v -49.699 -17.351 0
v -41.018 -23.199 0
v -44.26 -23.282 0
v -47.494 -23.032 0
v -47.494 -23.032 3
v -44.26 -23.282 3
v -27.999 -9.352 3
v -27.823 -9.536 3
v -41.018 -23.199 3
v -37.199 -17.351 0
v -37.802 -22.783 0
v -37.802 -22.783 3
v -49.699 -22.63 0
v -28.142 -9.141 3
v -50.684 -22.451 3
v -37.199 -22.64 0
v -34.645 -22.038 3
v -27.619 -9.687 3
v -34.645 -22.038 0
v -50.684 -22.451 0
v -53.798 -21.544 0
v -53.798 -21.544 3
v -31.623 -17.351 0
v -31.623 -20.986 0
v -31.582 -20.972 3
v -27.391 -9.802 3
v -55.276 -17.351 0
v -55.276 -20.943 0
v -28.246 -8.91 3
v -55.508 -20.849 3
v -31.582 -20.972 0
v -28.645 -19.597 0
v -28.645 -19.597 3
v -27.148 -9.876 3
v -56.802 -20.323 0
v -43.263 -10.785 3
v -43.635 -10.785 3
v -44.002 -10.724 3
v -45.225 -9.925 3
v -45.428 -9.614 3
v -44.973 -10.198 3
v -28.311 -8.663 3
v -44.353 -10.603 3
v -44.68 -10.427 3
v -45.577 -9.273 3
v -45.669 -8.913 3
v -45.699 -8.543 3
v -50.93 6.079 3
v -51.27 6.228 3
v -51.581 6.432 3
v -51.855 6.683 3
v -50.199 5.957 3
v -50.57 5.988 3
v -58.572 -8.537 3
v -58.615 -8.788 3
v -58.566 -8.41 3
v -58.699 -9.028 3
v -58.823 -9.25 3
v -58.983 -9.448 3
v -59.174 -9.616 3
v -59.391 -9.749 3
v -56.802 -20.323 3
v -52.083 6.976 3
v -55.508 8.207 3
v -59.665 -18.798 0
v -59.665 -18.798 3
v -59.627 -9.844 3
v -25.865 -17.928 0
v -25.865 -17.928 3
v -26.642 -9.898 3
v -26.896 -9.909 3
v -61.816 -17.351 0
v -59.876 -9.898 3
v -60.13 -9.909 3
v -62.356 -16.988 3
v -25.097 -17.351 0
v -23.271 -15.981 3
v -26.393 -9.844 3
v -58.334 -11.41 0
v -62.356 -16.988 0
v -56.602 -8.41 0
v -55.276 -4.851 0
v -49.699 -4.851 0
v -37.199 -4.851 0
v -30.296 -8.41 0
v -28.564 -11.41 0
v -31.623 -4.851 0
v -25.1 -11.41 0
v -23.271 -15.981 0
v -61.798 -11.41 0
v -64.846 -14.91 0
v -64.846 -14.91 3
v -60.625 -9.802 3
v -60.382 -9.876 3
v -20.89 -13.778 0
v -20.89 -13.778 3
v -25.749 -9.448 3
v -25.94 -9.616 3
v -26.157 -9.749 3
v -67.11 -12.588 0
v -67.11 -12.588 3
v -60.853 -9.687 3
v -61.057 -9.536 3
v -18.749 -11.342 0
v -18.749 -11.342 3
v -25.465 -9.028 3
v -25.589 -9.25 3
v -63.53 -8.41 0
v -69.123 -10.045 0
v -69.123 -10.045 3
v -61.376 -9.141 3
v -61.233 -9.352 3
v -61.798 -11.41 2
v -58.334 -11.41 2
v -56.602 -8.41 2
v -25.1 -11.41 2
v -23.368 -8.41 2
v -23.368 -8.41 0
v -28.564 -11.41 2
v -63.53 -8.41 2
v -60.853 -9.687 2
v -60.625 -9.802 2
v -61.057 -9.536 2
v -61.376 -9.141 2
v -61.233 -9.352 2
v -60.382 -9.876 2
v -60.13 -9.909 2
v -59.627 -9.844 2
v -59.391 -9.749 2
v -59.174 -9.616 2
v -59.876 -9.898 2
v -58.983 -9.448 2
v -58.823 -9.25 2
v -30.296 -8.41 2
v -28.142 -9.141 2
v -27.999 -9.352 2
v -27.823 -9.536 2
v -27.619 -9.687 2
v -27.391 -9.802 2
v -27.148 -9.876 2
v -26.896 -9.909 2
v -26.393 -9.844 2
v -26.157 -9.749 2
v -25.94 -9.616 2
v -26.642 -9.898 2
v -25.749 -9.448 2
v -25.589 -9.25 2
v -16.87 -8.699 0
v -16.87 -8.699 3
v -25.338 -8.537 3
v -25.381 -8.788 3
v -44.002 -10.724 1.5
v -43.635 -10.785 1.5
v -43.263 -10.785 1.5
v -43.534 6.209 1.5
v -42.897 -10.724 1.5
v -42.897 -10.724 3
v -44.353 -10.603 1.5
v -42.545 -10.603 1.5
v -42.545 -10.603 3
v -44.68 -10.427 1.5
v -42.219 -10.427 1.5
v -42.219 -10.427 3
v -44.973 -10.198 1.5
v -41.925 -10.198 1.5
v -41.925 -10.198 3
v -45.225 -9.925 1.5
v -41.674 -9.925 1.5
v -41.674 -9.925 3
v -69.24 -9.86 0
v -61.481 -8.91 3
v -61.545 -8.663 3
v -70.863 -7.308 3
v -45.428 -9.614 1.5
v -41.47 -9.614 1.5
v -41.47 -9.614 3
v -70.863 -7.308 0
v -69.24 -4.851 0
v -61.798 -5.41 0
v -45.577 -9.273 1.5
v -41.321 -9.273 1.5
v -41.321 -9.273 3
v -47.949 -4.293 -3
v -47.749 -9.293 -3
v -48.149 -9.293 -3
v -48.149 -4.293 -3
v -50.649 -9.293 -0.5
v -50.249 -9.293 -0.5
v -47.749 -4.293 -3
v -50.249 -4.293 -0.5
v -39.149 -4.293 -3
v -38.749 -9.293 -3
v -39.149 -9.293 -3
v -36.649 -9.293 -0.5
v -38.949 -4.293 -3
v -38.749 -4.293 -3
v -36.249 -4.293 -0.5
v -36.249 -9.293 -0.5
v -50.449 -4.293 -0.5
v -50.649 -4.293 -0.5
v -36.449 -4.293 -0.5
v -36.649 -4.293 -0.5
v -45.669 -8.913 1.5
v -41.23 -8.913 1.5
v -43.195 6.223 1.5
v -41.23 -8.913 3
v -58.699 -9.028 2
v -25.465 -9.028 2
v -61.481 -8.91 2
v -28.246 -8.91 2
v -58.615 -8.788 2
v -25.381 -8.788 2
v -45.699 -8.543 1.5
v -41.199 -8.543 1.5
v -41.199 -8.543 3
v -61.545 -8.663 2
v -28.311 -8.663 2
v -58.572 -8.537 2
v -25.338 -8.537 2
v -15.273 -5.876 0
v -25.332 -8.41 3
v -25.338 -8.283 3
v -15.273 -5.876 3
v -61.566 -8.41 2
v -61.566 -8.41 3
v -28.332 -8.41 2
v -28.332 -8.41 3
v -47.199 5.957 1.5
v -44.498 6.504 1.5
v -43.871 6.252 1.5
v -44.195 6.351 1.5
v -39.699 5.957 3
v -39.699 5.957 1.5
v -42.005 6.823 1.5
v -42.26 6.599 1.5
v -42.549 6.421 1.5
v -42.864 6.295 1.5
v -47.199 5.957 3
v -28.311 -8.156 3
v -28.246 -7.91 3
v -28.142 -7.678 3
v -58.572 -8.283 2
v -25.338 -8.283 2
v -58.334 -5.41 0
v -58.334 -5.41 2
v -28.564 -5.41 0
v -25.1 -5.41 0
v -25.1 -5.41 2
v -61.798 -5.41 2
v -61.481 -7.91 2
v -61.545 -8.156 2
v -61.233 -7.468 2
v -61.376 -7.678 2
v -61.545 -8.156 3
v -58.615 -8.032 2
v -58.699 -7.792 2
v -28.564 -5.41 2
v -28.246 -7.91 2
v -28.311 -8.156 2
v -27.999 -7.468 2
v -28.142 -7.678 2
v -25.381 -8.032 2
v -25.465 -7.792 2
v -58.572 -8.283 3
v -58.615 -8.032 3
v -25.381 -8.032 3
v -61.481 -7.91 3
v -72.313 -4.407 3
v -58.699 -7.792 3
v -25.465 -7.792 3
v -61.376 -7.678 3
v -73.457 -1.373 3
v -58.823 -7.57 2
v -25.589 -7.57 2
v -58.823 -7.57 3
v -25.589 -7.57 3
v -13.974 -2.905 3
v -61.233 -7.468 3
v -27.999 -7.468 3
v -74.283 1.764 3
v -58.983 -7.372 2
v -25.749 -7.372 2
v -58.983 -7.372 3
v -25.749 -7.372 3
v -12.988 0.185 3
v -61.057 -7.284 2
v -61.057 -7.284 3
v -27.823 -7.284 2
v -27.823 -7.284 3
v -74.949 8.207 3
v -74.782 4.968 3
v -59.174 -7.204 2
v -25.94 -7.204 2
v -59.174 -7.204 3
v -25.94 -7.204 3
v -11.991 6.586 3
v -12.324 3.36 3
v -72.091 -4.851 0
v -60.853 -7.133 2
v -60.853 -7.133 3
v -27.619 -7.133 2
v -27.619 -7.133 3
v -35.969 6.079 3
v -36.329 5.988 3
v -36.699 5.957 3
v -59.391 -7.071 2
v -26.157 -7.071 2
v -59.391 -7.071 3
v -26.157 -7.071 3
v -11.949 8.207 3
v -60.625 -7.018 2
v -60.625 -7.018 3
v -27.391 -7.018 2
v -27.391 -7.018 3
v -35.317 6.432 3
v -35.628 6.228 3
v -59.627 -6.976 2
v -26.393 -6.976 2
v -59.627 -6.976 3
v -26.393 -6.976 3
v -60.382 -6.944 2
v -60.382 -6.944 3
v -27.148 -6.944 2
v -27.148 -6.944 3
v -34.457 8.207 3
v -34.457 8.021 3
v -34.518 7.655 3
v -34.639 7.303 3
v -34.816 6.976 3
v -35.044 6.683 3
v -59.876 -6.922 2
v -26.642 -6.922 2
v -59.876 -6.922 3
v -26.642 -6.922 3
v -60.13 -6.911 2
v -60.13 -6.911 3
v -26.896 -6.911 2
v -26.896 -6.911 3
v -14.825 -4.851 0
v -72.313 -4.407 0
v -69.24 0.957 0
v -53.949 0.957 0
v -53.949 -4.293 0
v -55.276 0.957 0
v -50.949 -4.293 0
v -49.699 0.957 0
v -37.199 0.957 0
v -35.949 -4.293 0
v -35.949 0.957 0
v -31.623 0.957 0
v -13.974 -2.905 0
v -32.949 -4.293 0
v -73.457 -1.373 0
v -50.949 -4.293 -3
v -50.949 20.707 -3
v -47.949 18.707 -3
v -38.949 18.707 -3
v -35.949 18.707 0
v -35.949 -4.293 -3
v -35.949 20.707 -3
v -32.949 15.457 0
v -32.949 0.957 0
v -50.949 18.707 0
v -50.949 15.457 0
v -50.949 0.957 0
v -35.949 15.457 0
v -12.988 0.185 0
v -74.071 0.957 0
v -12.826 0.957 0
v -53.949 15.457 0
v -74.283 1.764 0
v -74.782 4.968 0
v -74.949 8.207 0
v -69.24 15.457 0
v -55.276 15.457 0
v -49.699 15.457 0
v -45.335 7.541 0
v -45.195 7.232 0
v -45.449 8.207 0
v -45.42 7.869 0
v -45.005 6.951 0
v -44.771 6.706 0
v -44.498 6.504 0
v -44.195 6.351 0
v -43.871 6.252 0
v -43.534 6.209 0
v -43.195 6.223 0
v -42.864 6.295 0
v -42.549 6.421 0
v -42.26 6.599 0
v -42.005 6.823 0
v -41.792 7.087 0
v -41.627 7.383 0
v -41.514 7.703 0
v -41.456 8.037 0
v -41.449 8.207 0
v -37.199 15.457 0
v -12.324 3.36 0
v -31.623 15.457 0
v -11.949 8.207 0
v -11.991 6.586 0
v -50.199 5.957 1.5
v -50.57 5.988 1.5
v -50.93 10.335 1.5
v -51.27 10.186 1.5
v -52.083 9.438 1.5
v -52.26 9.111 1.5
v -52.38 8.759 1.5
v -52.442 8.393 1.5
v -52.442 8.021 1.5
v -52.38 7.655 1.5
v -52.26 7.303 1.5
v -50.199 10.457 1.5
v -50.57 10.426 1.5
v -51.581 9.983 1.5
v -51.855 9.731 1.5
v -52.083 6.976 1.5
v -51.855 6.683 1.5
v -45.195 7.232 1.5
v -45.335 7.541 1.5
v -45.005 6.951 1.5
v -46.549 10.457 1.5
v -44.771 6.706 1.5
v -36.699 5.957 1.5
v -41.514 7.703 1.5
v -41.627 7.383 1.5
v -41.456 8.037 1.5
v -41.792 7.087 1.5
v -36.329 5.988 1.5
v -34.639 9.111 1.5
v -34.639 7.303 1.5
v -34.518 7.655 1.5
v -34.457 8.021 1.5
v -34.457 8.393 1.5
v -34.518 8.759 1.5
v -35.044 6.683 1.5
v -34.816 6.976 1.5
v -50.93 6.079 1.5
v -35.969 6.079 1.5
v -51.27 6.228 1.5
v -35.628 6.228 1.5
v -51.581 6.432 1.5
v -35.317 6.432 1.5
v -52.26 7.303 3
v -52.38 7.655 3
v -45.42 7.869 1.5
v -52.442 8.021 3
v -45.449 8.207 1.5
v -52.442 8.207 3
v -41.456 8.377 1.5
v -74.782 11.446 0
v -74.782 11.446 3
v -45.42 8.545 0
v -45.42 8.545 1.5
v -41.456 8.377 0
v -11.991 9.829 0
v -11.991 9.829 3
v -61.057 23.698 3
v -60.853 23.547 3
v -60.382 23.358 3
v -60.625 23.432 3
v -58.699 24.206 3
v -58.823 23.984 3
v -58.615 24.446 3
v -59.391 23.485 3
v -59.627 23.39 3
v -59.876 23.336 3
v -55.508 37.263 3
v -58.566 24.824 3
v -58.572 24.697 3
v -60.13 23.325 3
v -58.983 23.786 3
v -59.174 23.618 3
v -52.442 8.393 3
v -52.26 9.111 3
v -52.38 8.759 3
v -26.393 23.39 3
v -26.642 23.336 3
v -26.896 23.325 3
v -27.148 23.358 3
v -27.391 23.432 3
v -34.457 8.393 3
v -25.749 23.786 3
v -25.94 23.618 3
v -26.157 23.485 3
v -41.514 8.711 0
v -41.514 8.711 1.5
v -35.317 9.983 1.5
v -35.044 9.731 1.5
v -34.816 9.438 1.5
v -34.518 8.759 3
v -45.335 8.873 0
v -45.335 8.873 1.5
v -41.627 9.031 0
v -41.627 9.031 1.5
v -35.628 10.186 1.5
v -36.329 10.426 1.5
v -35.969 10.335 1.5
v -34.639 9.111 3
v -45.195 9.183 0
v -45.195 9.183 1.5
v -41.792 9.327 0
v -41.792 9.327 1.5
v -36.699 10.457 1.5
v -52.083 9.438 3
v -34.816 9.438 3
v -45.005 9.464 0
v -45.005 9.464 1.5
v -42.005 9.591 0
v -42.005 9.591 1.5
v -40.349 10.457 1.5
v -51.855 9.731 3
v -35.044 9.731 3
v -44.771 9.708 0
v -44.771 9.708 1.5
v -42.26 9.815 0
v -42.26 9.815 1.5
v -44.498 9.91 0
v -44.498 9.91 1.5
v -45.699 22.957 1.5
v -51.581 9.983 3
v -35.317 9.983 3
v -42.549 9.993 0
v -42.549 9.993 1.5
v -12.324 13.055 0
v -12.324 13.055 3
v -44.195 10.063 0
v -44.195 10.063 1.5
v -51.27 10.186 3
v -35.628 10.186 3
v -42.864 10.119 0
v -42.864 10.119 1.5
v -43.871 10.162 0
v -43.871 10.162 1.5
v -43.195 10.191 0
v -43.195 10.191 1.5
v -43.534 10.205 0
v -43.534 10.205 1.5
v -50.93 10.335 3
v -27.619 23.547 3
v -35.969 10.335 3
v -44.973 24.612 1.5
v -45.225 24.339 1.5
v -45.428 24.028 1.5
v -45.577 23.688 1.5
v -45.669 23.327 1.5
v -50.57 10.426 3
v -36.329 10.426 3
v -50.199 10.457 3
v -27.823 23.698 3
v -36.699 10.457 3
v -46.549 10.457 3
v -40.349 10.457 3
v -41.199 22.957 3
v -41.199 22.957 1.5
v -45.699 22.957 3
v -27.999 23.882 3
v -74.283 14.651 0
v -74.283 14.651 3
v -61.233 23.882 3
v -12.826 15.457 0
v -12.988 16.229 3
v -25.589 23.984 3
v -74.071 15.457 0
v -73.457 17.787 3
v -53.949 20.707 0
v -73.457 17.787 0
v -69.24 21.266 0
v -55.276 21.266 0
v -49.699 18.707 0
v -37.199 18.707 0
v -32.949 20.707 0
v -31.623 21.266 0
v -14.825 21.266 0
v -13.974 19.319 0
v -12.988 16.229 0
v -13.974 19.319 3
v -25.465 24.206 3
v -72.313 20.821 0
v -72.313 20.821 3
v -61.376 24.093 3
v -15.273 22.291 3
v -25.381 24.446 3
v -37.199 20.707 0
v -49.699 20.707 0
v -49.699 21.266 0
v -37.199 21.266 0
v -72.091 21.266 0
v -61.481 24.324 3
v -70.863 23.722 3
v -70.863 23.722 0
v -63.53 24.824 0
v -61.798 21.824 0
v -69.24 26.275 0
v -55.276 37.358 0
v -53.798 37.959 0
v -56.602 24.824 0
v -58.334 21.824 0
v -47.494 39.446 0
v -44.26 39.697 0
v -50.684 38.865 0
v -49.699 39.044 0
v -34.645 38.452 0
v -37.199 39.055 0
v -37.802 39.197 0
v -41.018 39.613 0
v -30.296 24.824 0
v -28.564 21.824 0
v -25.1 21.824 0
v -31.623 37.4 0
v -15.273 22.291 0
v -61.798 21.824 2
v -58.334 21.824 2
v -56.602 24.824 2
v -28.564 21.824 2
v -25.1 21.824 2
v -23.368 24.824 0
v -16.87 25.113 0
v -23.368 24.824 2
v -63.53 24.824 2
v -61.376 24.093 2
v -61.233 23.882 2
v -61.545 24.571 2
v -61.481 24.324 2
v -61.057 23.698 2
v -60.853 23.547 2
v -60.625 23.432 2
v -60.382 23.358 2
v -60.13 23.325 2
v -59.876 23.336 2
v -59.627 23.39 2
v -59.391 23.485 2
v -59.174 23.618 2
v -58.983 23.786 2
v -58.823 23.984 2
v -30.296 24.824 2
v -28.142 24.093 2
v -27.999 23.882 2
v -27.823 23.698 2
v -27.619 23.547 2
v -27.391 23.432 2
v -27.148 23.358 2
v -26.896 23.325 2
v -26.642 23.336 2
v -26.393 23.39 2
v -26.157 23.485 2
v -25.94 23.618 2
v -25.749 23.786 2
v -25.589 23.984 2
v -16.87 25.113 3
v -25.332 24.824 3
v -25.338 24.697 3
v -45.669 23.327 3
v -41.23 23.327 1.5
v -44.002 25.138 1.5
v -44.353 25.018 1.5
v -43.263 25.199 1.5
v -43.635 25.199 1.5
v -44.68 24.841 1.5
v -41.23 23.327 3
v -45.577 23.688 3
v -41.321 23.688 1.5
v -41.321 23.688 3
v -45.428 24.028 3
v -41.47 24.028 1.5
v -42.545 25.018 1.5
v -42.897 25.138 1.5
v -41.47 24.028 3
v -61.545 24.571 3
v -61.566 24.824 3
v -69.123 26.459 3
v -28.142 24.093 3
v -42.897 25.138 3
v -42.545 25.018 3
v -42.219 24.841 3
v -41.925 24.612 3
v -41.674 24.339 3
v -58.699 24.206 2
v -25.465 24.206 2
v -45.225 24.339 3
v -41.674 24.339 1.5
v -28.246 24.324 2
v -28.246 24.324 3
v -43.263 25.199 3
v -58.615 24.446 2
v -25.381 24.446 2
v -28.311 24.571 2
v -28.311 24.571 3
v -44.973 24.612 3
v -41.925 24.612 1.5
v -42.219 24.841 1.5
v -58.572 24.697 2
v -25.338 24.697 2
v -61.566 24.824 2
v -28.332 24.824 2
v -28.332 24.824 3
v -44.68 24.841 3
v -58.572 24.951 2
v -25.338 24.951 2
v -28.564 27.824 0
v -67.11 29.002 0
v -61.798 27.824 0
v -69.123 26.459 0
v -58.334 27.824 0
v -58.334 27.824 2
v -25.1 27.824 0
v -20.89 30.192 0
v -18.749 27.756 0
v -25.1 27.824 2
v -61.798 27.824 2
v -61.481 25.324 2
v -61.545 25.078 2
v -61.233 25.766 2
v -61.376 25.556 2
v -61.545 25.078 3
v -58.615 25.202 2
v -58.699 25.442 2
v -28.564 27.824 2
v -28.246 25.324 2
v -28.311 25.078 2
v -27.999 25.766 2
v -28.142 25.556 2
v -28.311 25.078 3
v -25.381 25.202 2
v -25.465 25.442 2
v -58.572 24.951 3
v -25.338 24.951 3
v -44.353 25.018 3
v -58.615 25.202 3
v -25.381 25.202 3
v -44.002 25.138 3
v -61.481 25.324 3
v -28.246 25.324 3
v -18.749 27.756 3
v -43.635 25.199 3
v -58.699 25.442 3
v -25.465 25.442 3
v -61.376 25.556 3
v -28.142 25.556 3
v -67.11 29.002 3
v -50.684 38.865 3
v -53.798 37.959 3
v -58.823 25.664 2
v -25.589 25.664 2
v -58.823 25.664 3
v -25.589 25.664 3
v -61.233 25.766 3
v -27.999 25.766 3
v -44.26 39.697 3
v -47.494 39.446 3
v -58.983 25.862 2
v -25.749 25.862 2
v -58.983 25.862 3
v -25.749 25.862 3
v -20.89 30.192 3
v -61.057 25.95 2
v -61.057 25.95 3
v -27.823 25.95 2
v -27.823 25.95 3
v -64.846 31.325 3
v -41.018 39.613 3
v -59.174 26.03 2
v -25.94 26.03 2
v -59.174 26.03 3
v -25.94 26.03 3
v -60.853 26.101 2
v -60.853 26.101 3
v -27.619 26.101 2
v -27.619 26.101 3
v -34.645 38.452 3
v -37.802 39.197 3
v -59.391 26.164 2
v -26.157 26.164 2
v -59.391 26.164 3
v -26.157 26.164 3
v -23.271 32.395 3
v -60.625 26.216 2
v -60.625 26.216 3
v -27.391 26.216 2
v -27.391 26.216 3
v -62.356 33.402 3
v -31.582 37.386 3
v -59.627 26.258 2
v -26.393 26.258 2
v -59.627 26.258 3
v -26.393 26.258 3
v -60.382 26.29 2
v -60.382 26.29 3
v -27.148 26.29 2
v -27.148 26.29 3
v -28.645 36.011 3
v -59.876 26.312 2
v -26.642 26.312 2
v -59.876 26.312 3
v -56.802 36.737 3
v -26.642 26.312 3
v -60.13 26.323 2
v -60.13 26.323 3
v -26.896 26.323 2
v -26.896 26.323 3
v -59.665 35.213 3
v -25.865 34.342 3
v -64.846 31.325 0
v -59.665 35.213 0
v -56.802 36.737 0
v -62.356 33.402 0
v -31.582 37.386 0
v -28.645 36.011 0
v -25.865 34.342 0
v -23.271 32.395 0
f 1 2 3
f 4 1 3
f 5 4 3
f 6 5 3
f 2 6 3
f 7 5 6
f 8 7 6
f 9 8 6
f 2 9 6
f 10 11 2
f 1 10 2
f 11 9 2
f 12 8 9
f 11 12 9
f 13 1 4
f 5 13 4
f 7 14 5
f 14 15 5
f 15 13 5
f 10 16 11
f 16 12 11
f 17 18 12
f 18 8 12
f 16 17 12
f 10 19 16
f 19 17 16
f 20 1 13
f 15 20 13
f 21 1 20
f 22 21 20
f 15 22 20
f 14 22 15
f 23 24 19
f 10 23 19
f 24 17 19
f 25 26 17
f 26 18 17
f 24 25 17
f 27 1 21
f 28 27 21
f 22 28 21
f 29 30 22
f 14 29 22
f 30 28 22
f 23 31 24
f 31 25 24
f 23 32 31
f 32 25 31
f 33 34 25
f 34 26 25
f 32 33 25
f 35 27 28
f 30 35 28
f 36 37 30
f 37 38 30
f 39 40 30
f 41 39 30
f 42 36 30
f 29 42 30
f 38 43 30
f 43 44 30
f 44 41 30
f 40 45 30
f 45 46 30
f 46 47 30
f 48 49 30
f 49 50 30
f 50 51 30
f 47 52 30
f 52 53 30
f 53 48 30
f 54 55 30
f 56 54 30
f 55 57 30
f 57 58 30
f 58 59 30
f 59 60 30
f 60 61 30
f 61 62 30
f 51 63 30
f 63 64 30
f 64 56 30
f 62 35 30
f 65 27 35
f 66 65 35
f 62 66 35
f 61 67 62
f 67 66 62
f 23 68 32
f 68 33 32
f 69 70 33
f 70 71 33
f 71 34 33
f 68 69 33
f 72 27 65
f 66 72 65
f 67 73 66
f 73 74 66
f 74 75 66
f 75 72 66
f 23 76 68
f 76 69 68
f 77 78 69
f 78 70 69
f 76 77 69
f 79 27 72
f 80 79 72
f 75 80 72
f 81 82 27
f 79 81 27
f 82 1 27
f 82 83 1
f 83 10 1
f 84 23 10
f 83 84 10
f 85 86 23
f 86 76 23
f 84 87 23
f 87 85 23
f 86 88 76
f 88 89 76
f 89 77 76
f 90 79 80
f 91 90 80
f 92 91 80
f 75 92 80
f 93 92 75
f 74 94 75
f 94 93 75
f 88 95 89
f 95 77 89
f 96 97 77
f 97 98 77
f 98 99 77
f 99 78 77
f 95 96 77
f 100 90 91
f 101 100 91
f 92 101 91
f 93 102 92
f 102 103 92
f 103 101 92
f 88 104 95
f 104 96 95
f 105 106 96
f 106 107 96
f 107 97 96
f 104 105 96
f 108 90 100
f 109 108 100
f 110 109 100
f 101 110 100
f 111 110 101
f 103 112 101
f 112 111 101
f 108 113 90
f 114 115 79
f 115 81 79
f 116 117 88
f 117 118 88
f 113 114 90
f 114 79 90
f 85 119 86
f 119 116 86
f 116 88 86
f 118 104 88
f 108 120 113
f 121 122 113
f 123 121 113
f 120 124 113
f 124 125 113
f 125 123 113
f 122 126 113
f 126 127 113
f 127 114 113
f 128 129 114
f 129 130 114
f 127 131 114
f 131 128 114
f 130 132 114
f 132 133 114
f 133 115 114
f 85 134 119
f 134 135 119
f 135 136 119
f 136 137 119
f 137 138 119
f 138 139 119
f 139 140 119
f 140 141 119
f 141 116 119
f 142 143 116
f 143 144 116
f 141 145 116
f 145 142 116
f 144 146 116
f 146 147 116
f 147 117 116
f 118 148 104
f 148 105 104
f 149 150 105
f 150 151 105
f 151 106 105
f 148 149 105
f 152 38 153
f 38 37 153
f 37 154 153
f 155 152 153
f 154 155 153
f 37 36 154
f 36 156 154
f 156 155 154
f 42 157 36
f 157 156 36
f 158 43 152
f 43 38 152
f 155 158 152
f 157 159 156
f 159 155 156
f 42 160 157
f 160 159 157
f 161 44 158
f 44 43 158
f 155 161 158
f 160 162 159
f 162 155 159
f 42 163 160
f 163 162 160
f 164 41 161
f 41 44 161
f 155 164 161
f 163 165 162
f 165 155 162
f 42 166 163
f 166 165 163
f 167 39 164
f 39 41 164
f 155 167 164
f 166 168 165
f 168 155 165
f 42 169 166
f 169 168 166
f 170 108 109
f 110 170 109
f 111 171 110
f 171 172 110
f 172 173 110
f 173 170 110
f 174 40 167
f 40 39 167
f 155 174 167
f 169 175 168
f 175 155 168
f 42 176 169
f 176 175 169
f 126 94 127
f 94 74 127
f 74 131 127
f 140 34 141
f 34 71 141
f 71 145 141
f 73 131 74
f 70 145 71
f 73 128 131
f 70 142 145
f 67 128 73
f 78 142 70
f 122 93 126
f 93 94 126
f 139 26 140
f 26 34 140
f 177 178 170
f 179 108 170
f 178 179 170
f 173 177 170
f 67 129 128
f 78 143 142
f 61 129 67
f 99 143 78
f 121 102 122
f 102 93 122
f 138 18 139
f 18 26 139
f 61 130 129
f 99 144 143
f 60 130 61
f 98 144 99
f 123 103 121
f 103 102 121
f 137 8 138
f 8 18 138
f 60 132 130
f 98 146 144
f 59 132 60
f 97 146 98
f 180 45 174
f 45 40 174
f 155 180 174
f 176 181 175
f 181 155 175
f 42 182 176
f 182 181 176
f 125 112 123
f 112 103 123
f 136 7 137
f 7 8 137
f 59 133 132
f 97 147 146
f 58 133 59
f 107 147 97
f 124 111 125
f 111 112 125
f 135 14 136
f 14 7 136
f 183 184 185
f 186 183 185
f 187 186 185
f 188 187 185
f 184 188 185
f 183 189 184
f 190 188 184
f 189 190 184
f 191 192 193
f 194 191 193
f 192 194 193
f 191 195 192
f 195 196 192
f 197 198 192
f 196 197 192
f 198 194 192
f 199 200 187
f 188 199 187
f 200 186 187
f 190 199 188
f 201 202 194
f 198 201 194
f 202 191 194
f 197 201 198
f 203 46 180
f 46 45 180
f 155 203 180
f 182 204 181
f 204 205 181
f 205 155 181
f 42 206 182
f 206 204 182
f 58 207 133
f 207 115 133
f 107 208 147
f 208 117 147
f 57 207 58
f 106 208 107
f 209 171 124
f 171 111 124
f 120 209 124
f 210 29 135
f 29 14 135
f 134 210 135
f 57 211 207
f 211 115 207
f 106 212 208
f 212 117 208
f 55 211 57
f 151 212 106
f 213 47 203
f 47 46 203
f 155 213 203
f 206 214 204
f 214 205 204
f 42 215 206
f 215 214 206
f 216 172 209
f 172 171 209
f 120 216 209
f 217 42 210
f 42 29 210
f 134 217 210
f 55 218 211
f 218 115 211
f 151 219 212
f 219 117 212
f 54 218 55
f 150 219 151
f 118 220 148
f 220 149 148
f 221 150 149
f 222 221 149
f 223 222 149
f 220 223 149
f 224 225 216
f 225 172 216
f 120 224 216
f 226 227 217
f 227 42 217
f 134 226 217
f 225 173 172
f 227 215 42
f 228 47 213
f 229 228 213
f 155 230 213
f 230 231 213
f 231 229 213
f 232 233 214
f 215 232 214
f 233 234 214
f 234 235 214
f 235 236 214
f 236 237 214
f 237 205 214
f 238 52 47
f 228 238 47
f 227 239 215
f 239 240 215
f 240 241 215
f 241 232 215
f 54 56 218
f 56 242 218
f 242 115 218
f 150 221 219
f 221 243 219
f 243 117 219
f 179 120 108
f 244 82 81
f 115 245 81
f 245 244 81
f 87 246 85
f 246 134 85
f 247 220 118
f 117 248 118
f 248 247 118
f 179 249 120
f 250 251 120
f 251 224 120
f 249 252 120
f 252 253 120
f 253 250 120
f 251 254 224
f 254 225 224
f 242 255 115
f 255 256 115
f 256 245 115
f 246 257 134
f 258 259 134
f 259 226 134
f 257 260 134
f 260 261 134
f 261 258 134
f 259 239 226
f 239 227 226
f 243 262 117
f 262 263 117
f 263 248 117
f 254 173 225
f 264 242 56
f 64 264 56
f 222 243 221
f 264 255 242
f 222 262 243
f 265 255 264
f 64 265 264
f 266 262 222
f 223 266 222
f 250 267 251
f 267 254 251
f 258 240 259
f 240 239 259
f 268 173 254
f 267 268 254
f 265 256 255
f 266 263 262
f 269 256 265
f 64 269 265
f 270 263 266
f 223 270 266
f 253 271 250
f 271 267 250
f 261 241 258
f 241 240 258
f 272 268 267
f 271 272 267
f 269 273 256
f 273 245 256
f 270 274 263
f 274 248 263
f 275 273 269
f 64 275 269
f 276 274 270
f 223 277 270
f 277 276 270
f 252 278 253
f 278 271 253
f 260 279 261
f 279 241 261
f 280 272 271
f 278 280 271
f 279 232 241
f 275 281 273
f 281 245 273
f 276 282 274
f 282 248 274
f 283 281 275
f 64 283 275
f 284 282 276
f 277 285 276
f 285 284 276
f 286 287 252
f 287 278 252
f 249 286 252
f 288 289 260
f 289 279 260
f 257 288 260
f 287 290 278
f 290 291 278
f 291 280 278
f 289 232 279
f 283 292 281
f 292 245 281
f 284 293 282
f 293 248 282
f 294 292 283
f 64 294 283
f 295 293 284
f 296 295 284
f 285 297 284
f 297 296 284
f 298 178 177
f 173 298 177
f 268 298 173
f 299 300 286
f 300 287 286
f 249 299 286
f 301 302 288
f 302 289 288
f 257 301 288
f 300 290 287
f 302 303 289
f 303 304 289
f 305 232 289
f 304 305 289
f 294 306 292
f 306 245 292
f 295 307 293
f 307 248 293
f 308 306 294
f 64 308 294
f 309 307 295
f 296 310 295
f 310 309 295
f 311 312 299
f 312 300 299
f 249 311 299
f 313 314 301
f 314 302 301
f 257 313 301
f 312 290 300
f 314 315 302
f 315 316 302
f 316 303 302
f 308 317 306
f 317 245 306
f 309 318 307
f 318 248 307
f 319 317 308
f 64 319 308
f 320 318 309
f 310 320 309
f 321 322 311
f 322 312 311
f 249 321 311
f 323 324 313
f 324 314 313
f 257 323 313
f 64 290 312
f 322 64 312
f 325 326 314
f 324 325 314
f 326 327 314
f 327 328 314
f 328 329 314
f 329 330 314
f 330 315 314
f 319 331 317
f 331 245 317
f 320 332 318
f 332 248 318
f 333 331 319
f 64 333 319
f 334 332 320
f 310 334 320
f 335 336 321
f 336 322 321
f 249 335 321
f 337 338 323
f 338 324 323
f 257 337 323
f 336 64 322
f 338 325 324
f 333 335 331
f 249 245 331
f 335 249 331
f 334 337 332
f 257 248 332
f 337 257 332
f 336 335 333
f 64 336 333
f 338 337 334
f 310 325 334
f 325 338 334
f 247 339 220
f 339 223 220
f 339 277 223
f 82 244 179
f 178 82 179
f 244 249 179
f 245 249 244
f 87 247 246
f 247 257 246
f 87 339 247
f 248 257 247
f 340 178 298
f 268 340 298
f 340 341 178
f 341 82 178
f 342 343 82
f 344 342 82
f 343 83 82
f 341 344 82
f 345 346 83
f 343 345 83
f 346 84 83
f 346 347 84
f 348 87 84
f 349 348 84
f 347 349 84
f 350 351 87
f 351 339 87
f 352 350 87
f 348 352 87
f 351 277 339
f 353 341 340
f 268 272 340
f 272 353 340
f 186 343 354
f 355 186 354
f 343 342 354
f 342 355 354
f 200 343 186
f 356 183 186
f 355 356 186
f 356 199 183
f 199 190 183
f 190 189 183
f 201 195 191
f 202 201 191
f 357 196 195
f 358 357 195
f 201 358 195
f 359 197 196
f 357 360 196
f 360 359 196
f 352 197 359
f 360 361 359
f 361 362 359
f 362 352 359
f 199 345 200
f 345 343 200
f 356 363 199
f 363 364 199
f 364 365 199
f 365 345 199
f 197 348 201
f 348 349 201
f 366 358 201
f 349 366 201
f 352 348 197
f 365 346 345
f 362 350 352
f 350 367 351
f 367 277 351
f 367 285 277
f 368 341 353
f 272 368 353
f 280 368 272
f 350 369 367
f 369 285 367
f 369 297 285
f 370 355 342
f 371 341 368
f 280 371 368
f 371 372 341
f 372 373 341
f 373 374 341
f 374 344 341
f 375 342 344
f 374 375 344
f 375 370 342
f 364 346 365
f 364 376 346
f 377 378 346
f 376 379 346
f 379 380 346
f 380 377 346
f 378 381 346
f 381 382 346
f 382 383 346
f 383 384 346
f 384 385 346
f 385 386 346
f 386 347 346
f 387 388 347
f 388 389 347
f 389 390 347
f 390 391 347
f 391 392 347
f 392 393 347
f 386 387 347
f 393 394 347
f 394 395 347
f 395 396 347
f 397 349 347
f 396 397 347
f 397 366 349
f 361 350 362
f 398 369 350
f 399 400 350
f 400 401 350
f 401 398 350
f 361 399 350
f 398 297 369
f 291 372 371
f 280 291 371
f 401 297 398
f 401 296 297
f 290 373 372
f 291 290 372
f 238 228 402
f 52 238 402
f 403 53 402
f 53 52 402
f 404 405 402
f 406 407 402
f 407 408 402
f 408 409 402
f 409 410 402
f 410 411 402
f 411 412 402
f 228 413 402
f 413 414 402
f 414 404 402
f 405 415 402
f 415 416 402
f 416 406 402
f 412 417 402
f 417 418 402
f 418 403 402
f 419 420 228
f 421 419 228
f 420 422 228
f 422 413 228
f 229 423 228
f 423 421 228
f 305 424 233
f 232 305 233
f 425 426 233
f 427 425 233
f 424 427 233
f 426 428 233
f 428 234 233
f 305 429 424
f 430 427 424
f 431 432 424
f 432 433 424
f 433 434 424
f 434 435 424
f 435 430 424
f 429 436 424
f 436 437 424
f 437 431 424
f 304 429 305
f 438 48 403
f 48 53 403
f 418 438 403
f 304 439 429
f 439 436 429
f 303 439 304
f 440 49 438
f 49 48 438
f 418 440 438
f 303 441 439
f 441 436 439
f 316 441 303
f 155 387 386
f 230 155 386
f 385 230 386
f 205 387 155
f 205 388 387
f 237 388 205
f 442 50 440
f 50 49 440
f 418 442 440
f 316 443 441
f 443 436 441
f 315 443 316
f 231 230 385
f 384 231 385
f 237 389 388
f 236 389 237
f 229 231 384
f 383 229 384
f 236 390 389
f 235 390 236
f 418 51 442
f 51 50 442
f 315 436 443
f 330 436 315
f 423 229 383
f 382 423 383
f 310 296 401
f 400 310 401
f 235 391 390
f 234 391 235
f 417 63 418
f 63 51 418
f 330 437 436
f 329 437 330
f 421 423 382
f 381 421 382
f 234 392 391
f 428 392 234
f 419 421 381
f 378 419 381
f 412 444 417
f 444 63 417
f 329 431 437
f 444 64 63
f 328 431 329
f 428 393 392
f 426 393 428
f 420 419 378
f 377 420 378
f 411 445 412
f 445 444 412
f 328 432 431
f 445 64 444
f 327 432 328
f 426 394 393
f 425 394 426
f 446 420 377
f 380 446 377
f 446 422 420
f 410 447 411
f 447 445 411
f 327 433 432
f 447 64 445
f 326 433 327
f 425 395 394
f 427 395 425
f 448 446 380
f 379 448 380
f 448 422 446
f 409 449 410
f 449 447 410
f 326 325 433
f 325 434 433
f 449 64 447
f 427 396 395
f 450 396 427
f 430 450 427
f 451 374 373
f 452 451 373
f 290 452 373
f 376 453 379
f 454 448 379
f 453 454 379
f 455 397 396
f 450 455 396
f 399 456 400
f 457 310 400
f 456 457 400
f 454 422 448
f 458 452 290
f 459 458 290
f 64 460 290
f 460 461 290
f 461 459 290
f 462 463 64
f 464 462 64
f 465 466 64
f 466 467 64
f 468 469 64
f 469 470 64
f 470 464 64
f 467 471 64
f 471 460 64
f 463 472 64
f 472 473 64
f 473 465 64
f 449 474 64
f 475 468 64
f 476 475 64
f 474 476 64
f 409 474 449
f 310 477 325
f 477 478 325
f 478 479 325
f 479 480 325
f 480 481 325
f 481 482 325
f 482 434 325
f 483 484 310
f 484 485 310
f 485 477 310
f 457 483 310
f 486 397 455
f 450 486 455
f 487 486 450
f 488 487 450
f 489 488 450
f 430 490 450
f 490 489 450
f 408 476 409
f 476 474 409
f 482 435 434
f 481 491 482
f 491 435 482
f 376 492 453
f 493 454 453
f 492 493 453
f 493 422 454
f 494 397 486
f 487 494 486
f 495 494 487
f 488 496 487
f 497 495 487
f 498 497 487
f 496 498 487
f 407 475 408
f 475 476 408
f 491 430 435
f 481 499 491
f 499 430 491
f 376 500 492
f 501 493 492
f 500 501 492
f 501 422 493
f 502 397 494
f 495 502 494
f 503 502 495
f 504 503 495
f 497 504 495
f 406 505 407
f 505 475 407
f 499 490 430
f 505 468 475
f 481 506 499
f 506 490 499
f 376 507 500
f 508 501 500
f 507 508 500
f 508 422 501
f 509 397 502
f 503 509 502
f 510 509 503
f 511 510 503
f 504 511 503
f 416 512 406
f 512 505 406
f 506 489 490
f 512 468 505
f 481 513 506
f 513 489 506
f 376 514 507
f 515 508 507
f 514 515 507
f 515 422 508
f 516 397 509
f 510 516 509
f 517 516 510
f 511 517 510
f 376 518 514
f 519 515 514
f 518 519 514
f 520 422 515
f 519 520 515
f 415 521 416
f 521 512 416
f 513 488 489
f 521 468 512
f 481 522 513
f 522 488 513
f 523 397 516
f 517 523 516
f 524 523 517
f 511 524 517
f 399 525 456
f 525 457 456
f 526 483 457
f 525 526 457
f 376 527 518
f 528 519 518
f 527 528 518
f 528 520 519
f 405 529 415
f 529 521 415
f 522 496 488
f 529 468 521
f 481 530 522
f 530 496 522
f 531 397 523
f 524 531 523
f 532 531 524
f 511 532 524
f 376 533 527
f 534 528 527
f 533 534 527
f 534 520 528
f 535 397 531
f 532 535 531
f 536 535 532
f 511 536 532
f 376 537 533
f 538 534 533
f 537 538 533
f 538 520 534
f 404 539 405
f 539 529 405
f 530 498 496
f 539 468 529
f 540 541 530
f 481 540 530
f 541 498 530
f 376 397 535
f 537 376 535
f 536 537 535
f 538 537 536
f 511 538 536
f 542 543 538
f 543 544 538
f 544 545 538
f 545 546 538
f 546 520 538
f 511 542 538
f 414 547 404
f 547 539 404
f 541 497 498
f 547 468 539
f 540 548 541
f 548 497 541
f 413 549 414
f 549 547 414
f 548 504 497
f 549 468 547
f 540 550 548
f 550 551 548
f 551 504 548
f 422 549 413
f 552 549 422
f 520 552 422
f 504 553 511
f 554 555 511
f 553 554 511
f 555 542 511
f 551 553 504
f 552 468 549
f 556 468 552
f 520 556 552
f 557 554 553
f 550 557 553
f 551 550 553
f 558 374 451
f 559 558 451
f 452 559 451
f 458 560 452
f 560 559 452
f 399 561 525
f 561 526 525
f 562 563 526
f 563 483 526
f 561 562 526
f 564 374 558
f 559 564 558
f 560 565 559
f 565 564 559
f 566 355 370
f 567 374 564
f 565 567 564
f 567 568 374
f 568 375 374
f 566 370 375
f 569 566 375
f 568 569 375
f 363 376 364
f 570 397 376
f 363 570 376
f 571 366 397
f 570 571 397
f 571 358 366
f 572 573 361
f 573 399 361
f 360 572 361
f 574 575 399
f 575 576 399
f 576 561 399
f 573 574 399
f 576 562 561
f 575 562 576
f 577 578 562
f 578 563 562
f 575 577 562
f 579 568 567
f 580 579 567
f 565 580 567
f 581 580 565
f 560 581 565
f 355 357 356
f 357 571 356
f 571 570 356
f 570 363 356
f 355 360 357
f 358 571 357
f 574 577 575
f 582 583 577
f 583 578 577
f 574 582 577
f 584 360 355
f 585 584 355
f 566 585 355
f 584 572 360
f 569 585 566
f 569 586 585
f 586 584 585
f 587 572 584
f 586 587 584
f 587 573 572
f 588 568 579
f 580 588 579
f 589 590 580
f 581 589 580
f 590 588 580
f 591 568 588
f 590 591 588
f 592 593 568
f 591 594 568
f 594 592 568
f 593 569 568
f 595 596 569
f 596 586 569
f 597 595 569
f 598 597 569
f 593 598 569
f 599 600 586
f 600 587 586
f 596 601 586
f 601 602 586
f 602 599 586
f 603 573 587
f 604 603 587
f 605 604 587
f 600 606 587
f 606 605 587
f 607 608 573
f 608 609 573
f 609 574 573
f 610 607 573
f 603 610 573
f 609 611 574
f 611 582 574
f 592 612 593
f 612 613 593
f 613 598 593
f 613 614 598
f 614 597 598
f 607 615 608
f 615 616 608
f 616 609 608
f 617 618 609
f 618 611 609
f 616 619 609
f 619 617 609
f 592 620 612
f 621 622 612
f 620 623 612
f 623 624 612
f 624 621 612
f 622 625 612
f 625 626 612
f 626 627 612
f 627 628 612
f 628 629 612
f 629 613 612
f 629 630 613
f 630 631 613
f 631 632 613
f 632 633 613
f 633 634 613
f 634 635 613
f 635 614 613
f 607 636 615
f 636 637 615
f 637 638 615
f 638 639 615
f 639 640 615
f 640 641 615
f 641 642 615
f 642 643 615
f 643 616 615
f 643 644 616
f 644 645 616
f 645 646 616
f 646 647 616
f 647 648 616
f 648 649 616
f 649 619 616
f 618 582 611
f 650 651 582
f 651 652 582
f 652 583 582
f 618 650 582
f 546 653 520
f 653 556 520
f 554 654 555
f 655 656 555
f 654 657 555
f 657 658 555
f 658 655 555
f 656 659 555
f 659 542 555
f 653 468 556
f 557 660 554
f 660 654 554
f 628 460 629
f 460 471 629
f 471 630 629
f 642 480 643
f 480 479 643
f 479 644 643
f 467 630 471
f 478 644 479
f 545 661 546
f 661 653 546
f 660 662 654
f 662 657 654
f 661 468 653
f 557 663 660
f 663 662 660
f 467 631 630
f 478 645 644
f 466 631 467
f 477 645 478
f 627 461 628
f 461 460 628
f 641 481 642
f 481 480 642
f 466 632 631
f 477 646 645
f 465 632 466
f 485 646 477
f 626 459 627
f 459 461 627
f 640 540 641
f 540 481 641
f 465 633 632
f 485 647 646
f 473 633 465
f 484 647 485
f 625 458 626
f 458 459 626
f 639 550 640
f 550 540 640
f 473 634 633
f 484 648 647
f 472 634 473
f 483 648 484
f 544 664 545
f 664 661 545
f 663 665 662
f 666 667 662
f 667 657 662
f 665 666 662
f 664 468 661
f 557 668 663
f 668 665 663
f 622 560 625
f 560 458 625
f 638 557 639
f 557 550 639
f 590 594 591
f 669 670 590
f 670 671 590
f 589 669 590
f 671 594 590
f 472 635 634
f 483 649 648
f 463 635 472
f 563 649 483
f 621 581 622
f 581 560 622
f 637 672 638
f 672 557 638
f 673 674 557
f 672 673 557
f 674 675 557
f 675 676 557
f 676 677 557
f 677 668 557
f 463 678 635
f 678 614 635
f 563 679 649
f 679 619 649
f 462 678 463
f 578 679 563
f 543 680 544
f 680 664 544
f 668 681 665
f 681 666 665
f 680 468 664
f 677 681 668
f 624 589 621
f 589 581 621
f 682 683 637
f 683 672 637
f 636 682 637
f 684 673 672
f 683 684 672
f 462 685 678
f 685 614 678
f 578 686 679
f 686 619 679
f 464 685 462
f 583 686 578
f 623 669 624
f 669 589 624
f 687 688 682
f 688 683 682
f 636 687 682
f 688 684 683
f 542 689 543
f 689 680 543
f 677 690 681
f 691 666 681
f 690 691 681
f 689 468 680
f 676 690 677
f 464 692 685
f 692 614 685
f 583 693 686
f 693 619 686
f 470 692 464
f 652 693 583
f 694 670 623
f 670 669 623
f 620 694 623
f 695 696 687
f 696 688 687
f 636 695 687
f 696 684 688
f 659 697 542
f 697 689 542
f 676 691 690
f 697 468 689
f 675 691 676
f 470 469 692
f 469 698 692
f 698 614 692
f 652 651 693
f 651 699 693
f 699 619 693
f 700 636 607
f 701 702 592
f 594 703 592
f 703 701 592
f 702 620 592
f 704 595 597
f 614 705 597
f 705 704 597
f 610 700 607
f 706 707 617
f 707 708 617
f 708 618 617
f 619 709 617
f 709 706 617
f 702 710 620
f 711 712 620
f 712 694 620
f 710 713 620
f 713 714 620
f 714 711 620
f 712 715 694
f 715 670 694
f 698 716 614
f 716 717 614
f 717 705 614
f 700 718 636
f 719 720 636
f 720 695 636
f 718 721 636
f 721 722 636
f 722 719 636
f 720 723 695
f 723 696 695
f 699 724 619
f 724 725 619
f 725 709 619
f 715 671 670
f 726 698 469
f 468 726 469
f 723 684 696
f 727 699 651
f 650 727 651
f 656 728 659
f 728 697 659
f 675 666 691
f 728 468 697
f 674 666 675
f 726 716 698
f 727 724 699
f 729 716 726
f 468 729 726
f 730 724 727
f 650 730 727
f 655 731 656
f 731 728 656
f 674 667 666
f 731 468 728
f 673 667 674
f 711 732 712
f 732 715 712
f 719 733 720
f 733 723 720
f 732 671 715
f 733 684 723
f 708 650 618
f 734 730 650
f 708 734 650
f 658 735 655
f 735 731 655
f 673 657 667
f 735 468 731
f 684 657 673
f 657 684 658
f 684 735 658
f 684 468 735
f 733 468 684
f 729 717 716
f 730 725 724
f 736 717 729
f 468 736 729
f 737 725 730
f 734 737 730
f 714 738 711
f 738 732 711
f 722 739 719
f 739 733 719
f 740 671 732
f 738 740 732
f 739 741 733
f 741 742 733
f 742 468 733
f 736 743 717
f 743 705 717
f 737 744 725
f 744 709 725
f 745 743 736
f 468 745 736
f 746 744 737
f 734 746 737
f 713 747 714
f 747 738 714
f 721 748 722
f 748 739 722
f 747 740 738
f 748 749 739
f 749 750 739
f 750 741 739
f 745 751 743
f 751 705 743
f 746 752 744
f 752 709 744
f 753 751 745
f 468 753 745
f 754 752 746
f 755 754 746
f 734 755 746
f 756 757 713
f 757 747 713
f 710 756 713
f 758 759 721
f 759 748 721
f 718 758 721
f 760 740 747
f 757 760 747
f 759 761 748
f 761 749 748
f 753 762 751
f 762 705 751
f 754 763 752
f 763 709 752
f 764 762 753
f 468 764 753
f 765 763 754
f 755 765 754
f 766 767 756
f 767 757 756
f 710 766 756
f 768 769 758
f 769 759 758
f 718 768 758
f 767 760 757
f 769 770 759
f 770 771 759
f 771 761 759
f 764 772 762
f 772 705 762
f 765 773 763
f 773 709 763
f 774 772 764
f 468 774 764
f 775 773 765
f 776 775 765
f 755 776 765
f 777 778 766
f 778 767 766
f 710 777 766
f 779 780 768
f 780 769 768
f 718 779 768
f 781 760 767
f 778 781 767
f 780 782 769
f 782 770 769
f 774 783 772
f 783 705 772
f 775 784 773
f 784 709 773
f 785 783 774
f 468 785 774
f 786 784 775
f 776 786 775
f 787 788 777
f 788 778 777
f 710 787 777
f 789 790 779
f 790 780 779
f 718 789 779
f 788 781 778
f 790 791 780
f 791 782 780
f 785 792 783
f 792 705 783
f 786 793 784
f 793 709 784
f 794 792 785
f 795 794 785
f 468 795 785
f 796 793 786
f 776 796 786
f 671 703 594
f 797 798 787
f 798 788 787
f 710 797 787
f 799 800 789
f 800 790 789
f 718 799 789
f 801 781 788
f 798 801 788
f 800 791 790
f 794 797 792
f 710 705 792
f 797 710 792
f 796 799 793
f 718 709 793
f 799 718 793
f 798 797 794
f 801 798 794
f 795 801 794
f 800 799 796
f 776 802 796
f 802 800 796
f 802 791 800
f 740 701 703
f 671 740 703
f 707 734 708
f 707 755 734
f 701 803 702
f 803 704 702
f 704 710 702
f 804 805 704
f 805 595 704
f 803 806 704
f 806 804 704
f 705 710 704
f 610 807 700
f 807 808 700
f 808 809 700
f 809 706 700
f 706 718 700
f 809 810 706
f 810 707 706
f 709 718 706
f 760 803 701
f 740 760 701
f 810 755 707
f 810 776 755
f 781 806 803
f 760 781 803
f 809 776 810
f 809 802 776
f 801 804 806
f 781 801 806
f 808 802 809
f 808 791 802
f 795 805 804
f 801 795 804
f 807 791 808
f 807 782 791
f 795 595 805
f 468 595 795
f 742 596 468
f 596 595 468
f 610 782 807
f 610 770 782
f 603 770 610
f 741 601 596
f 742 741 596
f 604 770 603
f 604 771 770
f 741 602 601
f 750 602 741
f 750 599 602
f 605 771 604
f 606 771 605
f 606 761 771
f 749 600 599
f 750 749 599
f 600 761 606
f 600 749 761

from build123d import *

# Parameters (mm, degrees)
CROQUIS1_R              = 31.5
CROQUIS1_R_2            = 1.5
CROQUIS1_R_3            = 2
SALIENTE_EXTRUIR1_DEPTH = 3
CORTAR_EXTRUIR2_DEPTH   = 1.5
CROQUIS4_W              = 15
CROQUIS4_H              = 25
SALIENTE_EXTRUIR2_DEPTH = 3
SALIENTE_EXTRUIR3_DEPTH = 25
CORTAR_EXTRUIR3_DEPTH   = 23
SALIENTE_EXTRUIR4_DEPTH = 5
CORTAR_EXTRUIR4_DEPTH   = 2


with BuildPart() as part:
    # Croquis1 → Saliente-Extruir1 (new body)
    with BuildSketch(Plane.XY):
        with Locations((-43.449193048, 8.207110309)):
            Circle(CROQUIS1_R)
        with Locations((-60.066202406, 24.824119667)):
            Circle(CROQUIS1_R_2, mode=Mode.SUBTRACT)
        with Locations((-26.83218369, 24.824119667)):
            Circle(CROQUIS1_R_2, mode=Mode.SUBTRACT)
        with Locations((-26.83218369, -8.409899049)):
            Circle(CROQUIS1_R_2, mode=Mode.SUBTRACT)
        with Locations((-60.066202406, -8.409899049)):
            Circle(CROQUIS1_R_2, mode=Mode.SUBTRACT)
        with Locations((-43.449193048, 8.207110309)):
            Circle(CROQUIS1_R_3, mode=Mode.SUBTRACT)
    extrude(amount=SALIENTE_EXTRUIR1_DEPTH)

    # Croquis3 → Cortar-Extruir2 (cut)
    with BuildSketch(Plane.XY.offset(3)):
        with BuildLine():
            Line((-41.199193048, 22.957110309), (-40.349193048, 10.457110309))
            Line((-40.349193048, 10.457110309), (-36.699193048, 10.457110309))
            ThreePointArc((-36.699193048, 10.457110309), (-34.449193048, 8.207110309), (-36.699193048, 5.957110309))
            Line((-36.699193048, 5.957110309), (-39.699193048, 5.957110309))
            Line((-39.699193048, 5.957110309), (-41.199193048, -8.542889691))
            ThreePointArc((-41.199193048, -8.542889691), (-43.449193048, -10.792889691), (-45.699193048, -8.542889691))
            Line((-45.699193048, -8.542889691), (-47.199193048, 5.957110309))
            Line((-47.199193048, 5.957110309), (-50.199193048, 5.957110309))
            ThreePointArc((-50.199193048, 5.957110309), (-52.449193048, 8.207110309), (-50.199193048, 10.457110309))
            Line((-50.199193048, 10.457110309), (-46.549193048, 10.457110309))
            Line((-46.549193048, 10.457110309), (-45.699193048, 22.957110309))
            ThreePointArc((-45.699193048, 22.957110309), (-43.449193048, 25.207110309), (-41.199193048, 22.957110309))
        make_face()
    extrude(amount=-CORTAR_EXTRUIR2_DEPTH, mode=Mode.SUBTRACT)

    # Croquis4 → Saliente-Extruir2 (add)
    with BuildSketch(Plane(origin=(0, 0, 0), x_dir=(-1, 0, 0), z_dir=(0, 0, -1))):
        with Locations((43.449193048, 8.207110309)):
            Rectangle(CROQUIS4_W, CROQUIS4_H)
    extrude(amount=SALIENTE_EXTRUIR2_DEPTH)

    # Croquis5 → Saliente-Extruir3 (add)
    with BuildSketch(Plane.XZ.offset(4.292889691)):
        Polygon((-35.949193048, 0), (-32.949193048, 0), (-35.949193048, -3), align=None)
        Polygon((-50.949193048, 0), (-53.949193048, 0), (-50.949193048, -3), align=None)
    extrude(amount=-SALIENTE_EXTRUIR3_DEPTH)

    # Croquis6 → Cortar-Extruir3 (cut)
    with BuildSketch(Plane.XZ.offset(4.292889691)):
        Polygon((-35.949193048, 0), (-50.949193048, 0), (-47.949193048, -3), (-38.949193048, -3), align=None)
    extrude(amount=-CORTAR_EXTRUIR3_DEPTH, mode=Mode.SUBTRACT)

    # Croquis7 → Saliente-Extruir4 (add)
    with BuildSketch(Plane.XZ.offset(4.292889691)):
        Polygon((-39.149193048, -3), (-36.649193048, -0.5), (-36.249193048, -0.5), (-38.749193048, -3), align=None)
        Polygon((-50.249193048, -0.5), (-50.649193048, -0.5), (-48.149193048, -3), (-47.749193048, -3), align=None)
    extrude(amount=SALIENTE_EXTRUIR4_DEPTH)

    # Croquis8 → Cortar-Extruir4 (cut)
    with BuildSketch(Plane(origin=(0, 0, 0), x_dir=(-1, 0, 0), z_dir=(0, 0, -1))):
        Polygon((30.296285305, 24.824119667), (28.564234497, 27.824119667), (25.100132882, 27.824119667), (23.368082075, 24.824119667), (25.100132882, 21.824119667), (28.564234497, 21.824119667), align=None)
        Polygon((63.530304021, 24.824119667), (61.798253213, 27.824119667), (58.334151598, 27.824119667), (56.60210079, 24.824119667), (58.334151598, 21.824119667), (61.798253213, 21.824119667), align=None)
        Polygon((30.296285305, -8.409899049), (28.564234497, -5.409899049), (25.100132882, -5.409899049), (23.368082075, -8.409899049), (25.100132882, -11.409899049), (28.564234497, -11.409899049), align=None)
        Polygon((63.530304021, -8.409899049), (61.798253213, -5.409899049), (58.334151598, -5.409899049), (56.60210079, -8.409899049), (58.334151598, -11.409899049), (61.798253213, -11.409899049), align=None)
    extrude(amount=-CORTAR_EXTRUIR4_DEPTH, mode=Mode.SUBTRACT)


solid = part.part
